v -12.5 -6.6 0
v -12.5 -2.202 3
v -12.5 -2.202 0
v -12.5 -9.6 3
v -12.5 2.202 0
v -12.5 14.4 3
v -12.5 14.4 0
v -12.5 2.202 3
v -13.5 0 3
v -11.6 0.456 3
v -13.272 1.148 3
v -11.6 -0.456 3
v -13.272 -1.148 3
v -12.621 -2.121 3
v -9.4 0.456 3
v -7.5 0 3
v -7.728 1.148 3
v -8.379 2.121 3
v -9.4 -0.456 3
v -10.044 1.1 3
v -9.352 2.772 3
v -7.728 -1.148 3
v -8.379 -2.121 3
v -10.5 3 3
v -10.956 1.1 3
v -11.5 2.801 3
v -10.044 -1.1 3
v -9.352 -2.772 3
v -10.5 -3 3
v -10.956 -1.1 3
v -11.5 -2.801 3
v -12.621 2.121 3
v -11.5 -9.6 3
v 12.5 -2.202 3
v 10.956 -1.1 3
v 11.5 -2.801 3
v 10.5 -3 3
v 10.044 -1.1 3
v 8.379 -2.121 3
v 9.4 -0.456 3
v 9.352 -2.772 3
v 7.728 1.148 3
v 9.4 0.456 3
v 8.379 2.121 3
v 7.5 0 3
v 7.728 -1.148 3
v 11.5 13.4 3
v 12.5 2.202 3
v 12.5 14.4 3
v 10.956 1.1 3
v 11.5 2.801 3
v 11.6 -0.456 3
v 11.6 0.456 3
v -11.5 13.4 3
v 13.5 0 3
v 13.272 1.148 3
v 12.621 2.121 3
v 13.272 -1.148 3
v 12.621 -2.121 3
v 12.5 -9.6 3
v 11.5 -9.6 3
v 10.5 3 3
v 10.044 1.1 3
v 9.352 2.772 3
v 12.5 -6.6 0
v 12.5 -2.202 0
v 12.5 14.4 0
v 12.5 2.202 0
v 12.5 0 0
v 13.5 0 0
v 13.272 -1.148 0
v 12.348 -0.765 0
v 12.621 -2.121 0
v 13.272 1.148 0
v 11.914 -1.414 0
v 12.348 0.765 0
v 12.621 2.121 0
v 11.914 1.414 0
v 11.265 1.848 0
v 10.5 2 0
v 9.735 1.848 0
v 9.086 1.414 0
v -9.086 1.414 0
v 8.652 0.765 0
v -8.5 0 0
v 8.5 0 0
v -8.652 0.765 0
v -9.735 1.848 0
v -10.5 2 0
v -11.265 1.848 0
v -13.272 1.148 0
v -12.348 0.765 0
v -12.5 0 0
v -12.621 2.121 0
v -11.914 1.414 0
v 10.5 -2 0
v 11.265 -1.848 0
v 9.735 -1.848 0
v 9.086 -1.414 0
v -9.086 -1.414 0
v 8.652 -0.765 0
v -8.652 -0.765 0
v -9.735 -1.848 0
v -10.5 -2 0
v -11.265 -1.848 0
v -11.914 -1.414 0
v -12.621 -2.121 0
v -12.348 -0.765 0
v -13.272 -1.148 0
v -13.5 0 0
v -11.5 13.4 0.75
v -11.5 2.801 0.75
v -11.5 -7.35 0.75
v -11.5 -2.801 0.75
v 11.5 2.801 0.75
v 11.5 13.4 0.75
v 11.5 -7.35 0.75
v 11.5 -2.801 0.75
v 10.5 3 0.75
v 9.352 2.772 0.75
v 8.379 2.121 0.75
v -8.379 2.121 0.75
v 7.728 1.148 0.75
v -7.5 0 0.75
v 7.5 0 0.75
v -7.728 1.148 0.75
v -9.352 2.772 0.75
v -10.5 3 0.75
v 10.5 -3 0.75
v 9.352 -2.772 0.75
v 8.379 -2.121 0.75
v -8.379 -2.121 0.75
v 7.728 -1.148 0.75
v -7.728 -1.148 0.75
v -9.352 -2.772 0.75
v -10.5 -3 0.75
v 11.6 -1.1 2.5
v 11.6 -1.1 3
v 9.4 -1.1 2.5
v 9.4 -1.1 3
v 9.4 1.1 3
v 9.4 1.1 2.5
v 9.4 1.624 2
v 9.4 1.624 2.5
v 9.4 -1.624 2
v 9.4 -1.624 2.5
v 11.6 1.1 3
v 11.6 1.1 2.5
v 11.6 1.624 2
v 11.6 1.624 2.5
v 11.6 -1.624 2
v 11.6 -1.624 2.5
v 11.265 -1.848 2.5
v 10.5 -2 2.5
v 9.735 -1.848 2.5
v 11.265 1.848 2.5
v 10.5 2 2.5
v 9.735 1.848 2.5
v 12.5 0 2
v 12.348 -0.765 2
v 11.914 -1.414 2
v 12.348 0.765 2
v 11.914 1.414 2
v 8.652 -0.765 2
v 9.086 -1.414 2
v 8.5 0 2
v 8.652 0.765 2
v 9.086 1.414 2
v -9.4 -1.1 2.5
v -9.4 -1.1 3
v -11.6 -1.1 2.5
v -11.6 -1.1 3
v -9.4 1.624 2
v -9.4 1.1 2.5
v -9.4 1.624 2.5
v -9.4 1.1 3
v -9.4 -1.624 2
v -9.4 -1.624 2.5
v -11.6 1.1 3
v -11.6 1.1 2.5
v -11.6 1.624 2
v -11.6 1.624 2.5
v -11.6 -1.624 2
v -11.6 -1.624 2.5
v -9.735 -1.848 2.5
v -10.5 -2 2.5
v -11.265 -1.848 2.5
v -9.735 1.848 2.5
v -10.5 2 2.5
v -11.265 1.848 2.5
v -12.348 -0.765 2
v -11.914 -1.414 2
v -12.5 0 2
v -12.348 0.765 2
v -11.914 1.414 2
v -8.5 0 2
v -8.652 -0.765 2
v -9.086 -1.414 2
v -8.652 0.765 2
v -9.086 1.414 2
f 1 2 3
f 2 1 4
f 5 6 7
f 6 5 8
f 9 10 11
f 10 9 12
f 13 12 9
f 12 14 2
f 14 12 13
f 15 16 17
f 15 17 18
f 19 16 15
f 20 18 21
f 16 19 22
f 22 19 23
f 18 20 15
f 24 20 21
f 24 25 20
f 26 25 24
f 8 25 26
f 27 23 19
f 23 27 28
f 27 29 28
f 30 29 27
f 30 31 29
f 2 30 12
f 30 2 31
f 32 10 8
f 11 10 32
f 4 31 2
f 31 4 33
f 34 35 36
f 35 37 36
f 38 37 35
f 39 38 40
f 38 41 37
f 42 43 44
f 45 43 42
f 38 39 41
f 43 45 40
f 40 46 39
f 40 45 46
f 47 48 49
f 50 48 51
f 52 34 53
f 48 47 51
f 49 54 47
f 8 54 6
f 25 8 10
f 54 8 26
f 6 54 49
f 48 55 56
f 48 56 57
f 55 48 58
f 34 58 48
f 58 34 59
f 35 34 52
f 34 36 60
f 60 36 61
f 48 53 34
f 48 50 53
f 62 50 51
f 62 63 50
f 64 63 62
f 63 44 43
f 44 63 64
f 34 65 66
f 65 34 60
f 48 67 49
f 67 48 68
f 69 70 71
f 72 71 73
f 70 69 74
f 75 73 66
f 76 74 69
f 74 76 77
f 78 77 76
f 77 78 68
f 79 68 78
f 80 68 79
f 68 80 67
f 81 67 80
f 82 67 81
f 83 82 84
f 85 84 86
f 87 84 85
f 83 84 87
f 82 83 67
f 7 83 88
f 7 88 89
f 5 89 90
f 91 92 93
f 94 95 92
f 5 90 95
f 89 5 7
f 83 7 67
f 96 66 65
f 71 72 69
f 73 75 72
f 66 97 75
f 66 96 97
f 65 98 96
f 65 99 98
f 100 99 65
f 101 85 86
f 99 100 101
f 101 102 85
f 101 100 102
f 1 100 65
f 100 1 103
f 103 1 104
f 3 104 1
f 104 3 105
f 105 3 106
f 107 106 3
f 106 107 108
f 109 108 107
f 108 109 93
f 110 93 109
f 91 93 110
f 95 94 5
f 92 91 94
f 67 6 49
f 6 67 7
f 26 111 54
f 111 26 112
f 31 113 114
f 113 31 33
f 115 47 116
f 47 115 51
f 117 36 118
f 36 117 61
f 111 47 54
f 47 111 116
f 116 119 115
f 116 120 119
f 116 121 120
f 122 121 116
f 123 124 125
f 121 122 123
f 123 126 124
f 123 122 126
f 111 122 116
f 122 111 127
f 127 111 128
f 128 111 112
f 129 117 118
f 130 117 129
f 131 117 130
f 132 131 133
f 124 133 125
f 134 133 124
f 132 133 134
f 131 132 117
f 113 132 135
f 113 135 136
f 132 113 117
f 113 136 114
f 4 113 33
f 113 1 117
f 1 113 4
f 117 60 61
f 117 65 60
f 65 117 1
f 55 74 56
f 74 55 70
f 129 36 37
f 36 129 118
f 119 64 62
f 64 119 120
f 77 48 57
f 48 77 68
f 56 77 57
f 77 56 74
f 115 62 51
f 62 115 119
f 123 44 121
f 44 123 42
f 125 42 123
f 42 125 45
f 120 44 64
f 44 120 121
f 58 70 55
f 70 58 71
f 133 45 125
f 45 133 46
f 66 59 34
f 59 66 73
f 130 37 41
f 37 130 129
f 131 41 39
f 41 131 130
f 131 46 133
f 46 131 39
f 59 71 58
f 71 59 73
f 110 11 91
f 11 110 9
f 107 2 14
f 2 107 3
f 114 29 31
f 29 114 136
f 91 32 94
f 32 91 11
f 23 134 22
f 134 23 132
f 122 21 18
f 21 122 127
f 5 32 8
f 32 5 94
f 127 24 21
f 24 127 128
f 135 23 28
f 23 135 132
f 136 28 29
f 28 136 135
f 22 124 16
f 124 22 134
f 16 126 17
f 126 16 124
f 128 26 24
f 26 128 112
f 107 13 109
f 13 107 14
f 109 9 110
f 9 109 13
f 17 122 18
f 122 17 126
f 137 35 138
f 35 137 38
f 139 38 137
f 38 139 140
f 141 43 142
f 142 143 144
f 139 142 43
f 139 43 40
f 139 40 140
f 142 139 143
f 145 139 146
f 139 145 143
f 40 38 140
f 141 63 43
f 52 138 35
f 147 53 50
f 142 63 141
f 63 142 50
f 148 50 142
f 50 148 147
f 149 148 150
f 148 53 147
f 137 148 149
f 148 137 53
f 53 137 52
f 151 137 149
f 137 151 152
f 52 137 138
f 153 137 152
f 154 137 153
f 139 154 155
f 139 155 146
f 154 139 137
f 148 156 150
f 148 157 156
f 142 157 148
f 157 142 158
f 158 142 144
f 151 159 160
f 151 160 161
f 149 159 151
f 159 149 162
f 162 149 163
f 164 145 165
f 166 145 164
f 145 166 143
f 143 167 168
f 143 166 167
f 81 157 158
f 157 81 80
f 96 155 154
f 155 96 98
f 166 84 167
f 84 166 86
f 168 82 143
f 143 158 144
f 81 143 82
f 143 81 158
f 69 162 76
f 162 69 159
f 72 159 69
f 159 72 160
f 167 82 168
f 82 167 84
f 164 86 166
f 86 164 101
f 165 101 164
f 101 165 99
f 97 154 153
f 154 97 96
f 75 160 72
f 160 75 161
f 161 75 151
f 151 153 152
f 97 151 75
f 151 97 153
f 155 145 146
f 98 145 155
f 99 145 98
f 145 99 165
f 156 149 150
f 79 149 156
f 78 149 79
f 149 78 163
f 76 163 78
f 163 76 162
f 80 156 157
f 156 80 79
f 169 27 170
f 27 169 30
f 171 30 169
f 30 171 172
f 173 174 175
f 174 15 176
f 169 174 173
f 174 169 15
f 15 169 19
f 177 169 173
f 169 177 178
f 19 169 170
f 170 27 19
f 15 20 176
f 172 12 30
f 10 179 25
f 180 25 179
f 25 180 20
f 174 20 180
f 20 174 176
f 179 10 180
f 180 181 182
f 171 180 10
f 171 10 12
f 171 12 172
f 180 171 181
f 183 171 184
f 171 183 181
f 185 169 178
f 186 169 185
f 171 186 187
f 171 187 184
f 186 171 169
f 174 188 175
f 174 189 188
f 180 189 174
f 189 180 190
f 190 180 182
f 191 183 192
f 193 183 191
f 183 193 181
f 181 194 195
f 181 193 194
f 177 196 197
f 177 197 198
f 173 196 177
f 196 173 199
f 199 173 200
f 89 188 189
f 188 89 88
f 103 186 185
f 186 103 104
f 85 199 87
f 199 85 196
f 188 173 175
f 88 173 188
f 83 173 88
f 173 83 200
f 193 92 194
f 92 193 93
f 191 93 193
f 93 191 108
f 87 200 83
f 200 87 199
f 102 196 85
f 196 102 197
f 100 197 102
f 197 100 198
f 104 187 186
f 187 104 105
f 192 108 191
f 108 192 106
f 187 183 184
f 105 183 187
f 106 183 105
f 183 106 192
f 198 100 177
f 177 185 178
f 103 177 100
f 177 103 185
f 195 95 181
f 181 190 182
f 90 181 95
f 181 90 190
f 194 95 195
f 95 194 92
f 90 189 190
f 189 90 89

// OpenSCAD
// this file just pulls out one module from picamera_2

use <./picamera_2.scad>;

picamera_2_cover();
